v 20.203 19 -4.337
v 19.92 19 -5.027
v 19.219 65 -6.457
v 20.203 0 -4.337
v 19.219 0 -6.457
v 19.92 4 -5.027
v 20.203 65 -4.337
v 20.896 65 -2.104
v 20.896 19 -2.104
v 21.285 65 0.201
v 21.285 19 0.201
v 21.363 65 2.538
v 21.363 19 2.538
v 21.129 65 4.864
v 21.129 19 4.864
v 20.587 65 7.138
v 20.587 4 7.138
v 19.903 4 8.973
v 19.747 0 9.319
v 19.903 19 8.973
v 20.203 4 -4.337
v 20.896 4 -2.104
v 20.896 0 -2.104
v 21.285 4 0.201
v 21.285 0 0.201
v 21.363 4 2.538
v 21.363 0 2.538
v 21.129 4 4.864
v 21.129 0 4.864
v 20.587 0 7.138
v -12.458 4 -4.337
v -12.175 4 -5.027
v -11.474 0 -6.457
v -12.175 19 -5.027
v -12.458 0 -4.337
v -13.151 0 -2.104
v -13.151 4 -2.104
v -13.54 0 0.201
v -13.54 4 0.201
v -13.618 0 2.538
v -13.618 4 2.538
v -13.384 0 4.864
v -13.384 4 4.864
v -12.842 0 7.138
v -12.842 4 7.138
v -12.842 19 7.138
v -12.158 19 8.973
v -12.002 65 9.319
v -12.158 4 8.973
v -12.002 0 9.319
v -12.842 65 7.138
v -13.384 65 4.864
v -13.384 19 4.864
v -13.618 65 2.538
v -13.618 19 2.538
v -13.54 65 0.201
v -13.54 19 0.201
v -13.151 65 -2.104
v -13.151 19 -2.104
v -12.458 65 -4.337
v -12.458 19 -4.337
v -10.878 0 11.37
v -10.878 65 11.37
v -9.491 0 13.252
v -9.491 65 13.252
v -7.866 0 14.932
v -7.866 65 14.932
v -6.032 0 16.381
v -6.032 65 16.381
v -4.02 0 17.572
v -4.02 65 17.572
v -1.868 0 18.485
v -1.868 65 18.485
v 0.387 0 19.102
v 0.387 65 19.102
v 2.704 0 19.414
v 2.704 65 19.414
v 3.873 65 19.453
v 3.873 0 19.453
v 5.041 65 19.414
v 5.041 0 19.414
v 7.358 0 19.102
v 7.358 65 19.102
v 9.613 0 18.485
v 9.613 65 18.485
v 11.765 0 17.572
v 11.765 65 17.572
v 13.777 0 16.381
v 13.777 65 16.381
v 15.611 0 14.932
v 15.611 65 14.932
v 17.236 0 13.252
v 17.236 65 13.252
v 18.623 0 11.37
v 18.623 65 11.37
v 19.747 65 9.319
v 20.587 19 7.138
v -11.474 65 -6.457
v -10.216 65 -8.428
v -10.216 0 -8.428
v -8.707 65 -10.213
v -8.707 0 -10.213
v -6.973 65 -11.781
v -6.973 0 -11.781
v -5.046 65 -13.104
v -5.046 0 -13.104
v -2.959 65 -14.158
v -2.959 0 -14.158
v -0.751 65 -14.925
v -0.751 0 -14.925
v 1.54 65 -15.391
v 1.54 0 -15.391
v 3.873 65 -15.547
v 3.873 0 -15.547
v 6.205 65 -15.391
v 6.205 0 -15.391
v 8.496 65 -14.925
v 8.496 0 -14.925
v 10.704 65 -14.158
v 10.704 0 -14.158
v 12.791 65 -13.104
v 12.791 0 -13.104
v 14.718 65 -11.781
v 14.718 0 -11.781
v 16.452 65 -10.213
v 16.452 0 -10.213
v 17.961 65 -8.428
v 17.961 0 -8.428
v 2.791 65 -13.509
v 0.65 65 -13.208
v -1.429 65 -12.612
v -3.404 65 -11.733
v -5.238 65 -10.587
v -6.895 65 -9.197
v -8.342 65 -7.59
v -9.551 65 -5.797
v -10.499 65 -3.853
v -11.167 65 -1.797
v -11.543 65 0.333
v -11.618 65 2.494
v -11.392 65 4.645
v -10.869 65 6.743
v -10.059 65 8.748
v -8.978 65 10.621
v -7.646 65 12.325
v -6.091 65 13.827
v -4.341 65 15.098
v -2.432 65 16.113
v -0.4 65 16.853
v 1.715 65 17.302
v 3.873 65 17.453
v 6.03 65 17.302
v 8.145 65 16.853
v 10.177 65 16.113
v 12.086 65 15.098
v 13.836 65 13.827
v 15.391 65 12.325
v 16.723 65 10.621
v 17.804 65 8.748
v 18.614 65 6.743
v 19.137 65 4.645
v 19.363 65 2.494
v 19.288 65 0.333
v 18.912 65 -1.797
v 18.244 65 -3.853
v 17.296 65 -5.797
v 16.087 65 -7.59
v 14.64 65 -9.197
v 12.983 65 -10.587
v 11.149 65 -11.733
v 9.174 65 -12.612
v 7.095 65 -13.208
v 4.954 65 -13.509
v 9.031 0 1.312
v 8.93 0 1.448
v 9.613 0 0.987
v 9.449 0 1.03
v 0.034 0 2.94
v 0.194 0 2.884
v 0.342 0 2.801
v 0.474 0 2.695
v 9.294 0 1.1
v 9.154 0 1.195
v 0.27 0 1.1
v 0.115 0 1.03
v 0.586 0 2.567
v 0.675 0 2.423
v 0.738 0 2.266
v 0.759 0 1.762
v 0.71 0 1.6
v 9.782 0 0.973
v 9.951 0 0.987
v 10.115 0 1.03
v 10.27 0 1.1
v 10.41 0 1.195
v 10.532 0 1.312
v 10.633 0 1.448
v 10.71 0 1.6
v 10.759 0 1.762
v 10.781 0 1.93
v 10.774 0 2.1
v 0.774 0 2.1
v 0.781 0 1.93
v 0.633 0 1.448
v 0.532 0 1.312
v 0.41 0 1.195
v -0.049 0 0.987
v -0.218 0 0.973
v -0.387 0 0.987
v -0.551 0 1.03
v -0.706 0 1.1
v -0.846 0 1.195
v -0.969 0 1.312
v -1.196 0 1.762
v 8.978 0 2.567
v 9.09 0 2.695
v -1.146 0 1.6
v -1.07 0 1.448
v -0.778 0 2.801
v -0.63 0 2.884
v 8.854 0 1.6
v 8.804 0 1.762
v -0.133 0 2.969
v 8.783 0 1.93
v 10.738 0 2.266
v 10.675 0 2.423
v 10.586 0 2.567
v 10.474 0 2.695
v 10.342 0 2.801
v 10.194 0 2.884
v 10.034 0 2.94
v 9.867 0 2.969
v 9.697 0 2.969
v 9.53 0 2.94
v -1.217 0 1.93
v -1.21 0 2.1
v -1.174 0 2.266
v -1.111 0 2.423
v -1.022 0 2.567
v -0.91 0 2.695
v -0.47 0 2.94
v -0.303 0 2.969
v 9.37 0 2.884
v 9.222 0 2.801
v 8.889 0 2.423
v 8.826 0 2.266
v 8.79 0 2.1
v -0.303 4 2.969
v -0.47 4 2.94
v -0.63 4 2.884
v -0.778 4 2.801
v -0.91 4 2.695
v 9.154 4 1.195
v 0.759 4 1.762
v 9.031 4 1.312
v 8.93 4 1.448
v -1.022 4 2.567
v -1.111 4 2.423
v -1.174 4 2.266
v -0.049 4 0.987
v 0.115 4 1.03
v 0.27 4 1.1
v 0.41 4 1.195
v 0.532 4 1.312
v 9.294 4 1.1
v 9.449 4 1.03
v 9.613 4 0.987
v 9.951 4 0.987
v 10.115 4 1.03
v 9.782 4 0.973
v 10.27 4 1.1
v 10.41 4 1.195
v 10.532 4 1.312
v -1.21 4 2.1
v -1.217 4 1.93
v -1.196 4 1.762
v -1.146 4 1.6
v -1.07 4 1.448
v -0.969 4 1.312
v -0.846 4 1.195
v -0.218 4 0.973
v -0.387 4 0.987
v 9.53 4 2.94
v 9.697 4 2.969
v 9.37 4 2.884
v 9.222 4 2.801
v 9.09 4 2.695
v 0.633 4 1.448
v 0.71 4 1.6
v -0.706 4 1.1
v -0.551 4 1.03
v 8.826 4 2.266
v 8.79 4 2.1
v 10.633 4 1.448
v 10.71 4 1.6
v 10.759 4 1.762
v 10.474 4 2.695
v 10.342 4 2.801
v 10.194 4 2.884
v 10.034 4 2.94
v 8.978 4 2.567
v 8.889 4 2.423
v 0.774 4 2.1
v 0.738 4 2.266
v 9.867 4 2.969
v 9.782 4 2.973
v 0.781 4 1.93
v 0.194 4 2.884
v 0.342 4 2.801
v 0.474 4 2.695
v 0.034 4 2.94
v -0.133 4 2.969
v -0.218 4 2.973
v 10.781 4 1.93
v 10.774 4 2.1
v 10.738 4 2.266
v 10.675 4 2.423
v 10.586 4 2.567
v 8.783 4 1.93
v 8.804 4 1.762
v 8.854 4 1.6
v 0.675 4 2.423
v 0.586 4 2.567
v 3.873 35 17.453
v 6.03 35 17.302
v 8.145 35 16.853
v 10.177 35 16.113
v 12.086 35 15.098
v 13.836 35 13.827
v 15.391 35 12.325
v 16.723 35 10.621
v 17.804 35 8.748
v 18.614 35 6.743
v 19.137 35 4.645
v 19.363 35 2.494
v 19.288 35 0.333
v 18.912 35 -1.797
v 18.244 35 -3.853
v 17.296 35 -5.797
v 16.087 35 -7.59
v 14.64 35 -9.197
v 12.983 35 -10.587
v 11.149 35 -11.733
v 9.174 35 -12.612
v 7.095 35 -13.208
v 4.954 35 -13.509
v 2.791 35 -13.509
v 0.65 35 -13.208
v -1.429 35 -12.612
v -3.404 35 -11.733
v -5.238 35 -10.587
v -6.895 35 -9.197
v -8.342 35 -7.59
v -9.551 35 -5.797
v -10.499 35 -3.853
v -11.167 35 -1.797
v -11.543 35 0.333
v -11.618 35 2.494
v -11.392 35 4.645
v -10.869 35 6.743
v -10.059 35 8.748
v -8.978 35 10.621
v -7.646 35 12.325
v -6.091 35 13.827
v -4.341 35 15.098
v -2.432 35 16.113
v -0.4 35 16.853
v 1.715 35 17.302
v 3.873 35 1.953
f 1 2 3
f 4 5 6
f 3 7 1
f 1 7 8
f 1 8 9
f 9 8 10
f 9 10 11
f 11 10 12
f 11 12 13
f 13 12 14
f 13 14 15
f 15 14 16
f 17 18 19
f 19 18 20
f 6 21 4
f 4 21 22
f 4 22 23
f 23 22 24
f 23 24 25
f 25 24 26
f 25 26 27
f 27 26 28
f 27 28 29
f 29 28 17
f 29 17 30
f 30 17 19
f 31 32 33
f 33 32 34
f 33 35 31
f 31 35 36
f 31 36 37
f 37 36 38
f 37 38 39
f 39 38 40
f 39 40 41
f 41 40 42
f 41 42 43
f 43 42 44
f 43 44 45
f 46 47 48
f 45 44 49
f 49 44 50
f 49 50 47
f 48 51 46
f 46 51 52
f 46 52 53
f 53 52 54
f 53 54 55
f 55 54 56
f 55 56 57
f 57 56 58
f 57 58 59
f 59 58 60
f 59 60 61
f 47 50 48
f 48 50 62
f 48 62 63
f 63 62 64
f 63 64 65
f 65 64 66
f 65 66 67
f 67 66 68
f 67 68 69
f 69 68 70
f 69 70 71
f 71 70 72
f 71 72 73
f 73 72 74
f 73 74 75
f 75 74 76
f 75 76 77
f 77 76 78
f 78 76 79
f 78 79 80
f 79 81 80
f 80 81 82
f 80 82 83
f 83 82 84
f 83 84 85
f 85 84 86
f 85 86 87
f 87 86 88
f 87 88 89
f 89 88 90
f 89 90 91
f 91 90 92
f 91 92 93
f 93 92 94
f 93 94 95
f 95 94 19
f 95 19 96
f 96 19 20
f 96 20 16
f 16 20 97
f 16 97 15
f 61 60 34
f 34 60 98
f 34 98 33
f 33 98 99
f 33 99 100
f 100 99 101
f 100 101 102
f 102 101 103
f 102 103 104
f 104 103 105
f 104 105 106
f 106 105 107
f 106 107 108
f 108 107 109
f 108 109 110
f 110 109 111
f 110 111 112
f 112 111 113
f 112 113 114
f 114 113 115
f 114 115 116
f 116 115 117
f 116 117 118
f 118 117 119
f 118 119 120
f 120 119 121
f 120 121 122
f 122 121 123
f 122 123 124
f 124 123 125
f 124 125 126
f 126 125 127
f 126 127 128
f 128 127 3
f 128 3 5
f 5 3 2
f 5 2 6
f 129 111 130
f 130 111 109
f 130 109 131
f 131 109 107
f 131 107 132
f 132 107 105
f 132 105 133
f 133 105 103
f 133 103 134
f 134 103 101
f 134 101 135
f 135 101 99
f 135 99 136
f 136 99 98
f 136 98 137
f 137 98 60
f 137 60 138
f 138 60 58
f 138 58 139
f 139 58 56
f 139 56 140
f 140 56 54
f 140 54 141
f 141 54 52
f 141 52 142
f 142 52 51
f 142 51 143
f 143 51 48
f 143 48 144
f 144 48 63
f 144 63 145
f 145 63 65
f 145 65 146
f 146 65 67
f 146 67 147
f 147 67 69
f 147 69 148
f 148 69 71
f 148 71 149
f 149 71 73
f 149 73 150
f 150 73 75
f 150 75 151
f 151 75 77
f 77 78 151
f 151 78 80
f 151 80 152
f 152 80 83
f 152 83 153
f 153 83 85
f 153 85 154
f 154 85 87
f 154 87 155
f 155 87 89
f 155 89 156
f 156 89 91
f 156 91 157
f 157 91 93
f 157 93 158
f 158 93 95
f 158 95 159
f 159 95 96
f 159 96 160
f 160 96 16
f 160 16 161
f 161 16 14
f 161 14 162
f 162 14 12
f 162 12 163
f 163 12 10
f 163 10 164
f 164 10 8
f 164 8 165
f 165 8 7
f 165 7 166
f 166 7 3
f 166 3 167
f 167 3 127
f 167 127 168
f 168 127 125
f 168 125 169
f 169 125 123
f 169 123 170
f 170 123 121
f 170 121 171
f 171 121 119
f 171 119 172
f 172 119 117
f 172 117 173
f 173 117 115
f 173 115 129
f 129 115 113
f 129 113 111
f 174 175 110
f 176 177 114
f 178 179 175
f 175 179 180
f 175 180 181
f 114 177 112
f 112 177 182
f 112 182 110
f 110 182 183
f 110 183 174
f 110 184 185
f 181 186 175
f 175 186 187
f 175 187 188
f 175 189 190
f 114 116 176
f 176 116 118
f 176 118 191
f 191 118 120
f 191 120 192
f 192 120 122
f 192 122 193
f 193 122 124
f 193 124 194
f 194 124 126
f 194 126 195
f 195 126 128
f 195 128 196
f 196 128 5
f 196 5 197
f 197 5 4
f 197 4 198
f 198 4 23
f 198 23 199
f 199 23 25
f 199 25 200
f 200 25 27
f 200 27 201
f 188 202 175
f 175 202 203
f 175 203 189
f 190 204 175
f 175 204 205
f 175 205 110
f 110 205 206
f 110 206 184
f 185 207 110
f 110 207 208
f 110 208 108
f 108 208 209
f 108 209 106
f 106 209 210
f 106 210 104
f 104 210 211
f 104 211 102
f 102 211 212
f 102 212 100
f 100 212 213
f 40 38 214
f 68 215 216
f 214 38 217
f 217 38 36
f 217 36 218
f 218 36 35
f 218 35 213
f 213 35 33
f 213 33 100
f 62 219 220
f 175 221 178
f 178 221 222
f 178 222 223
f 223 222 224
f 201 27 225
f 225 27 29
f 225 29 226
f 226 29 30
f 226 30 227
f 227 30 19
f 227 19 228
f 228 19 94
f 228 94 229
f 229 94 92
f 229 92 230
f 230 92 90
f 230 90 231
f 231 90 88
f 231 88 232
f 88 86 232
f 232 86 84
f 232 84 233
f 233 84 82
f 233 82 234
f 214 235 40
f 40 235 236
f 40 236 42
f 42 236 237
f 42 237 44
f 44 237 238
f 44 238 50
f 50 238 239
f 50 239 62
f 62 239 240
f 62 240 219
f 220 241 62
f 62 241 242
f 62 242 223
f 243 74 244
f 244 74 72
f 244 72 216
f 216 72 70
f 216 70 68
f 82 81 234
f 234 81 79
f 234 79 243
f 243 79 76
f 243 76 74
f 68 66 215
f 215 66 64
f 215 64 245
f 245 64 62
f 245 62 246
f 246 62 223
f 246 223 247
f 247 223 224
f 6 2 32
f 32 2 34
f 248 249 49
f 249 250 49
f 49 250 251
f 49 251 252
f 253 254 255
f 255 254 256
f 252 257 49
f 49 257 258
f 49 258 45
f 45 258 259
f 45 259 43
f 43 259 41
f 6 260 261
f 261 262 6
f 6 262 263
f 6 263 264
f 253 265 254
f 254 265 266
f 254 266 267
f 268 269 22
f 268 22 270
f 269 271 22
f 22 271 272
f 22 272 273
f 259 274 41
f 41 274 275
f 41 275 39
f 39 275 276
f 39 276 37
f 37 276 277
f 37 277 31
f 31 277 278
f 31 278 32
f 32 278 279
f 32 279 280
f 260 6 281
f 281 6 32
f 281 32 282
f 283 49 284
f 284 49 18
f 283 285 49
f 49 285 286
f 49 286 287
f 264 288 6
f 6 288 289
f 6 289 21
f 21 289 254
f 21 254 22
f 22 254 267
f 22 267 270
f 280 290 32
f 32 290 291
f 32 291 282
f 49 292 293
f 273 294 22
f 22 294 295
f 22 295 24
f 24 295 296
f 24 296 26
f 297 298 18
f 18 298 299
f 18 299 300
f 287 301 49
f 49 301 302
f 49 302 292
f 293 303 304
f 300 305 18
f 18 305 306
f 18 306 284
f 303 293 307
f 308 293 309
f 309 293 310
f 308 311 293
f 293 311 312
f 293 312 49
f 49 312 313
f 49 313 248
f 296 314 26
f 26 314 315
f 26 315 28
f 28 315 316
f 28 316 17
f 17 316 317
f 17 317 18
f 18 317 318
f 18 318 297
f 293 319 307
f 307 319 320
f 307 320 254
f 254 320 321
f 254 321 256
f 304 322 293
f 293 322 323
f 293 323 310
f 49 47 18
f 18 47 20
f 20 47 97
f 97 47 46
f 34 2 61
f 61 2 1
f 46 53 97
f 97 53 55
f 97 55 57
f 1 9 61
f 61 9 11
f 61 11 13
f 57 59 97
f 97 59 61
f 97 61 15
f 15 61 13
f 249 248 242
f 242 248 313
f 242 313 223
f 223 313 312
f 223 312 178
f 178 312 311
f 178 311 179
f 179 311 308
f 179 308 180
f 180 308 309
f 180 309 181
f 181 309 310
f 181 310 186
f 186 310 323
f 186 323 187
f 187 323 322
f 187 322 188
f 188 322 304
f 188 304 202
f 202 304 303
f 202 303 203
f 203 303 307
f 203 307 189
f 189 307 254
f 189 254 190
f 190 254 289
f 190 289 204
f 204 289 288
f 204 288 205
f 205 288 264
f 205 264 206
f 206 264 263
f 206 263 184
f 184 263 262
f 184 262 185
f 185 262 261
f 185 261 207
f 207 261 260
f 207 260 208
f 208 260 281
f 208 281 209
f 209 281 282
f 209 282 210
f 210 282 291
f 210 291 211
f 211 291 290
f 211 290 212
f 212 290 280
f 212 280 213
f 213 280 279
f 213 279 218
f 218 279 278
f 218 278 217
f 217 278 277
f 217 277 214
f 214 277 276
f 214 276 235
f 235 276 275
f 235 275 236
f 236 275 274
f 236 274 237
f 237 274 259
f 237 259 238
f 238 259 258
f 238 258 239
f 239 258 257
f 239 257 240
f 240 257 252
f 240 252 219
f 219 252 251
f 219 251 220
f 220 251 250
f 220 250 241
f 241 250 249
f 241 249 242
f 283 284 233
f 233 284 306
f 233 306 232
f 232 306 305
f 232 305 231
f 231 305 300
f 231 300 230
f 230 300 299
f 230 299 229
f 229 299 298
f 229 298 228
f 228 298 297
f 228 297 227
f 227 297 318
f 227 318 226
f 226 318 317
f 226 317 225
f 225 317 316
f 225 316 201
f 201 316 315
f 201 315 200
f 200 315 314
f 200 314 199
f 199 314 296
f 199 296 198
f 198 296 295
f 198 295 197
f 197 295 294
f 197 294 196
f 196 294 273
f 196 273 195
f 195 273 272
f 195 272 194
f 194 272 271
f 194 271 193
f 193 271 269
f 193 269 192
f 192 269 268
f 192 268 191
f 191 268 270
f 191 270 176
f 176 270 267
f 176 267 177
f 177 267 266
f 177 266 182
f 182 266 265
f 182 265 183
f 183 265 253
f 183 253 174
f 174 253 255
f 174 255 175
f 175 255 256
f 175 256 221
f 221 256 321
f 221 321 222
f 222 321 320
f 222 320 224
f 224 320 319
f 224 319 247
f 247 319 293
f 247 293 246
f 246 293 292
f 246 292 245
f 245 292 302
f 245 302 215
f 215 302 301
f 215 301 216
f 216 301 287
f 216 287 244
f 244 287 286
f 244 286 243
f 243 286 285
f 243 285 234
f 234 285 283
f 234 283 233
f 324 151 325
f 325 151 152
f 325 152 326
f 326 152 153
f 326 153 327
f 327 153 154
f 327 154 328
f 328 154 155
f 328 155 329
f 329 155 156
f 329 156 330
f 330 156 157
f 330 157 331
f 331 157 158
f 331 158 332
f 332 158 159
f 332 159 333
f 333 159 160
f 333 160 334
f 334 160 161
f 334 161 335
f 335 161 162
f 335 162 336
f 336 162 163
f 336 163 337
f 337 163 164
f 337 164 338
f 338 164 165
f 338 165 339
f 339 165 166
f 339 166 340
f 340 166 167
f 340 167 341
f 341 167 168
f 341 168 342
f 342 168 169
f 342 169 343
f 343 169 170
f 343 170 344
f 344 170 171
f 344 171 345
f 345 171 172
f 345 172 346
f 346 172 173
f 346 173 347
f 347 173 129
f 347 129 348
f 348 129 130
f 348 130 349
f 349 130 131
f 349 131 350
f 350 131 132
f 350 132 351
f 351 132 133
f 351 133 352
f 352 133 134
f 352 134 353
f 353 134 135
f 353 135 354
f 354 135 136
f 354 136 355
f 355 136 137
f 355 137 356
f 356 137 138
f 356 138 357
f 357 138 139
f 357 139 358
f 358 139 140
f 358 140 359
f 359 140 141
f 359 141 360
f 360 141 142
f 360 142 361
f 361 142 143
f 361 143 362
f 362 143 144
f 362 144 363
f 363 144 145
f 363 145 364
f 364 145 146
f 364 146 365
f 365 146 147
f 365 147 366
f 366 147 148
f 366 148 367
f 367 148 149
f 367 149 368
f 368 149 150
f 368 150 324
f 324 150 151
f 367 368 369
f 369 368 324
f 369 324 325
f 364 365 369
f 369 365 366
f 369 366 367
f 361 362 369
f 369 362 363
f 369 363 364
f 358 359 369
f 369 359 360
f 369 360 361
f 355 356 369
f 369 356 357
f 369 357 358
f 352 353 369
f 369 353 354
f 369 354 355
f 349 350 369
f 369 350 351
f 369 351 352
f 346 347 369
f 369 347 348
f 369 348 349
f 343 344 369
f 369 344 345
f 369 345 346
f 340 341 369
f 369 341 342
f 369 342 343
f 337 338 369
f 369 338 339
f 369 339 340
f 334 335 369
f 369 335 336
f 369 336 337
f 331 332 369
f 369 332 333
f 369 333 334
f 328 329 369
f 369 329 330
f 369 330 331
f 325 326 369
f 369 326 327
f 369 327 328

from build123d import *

# Parameters (mm, degrees)
SKETCH1_W               = 25
SKETCH1_H               = 16
BOSS_EXTRUDE1_DEPTH     = 20
SKETCH6_R               = 17.5
BOSS_EXTRUDE4_DEPTH     = 65
CUT_EXTRUDE1_DEPTH      = 65
CUT_EXTRUDE1_DEPTH_BACK = 40
SKETCH2_W               = 14
SKETCH2_H               = 15
SKETCH3_R               = 1
CUT_EXTRUDE2_DEPTH      = 10
SKETCH7_R               = 15.5
CUT_EXTRUDE3_DEPTH      = 30


with BuildPart() as part:
    # Sketch1 → Boss-Extrude1 (new body)
    with BuildSketch(Plane(origin=(0, 0, 0), x_dir=(1, 0, 0), z_dir=(0, 1, 0))):
        with Locations((3.281818182, -1.972727273)):
            Rectangle(SKETCH1_W, SKETCH1_H)
    extrude(amount=BOSS_EXTRUDE1_DEPTH)

    # Sketch6 → Boss-Extrude4 (add)
    with BuildSketch(Plane(origin=(0, 0, 0), x_dir=(1, 0, 0), z_dir=(0, 1, 0))):
        with Locations(Location((3.872523773, -1.953116283, 0), (0, 0, 270))):
            Circle(SKETCH6_R)
    extrude(amount=BOSS_EXTRUDE4_DEPTH)

    # Sketch2 → Cut-Extrude1 (cut, two sides: drawn at the far end of the back side and taken through both)
    with BuildSketch(Plane.ZY.offset(9.218181818).offset(-CUT_EXTRUDE1_DEPTH_BACK)):
        with Locations((1.972727273, 11.5)):
            Rectangle(SKETCH2_W, SKETCH2_H)
    extrude(amount=CUT_EXTRUDE1_DEPTH + CUT_EXTRUDE1_DEPTH_BACK, mode=Mode.SUBTRACT)

    # Sketch3 → Cut-Extrude2 (cut)
    with BuildSketch(Plane(origin=(0, 0, 0), x_dir=(-1, 0, 0), z_dir=(0, -1, 0))):
        with Locations(Location((-9.781818182, -1.972727273, 0), (0, 0, 90))):
            Circle(SKETCH3_R)
        with Locations(Location((0.218181818, -1.972727273, 0), (0, 0, 90))):
            Circle(SKETCH3_R)
    extrude(amount=-CUT_EXTRUDE2_DEPTH, mode=Mode.SUBTRACT)

    # Sketch7 → Cut-Extrude3 (cut)
    with BuildSketch(Plane(origin=(0, 65, 0), x_dir=(1, 0, 0), z_dir=(0, 1, 0))):
        with Locations(Location((3.872523773, -1.953116283, 0), (0, 0, 270))):
            Circle(SKETCH7_R)
    extrude(amount=-CUT_EXTRUDE3_DEPTH, mode=Mode.SUBTRACT)


solid = part.part
